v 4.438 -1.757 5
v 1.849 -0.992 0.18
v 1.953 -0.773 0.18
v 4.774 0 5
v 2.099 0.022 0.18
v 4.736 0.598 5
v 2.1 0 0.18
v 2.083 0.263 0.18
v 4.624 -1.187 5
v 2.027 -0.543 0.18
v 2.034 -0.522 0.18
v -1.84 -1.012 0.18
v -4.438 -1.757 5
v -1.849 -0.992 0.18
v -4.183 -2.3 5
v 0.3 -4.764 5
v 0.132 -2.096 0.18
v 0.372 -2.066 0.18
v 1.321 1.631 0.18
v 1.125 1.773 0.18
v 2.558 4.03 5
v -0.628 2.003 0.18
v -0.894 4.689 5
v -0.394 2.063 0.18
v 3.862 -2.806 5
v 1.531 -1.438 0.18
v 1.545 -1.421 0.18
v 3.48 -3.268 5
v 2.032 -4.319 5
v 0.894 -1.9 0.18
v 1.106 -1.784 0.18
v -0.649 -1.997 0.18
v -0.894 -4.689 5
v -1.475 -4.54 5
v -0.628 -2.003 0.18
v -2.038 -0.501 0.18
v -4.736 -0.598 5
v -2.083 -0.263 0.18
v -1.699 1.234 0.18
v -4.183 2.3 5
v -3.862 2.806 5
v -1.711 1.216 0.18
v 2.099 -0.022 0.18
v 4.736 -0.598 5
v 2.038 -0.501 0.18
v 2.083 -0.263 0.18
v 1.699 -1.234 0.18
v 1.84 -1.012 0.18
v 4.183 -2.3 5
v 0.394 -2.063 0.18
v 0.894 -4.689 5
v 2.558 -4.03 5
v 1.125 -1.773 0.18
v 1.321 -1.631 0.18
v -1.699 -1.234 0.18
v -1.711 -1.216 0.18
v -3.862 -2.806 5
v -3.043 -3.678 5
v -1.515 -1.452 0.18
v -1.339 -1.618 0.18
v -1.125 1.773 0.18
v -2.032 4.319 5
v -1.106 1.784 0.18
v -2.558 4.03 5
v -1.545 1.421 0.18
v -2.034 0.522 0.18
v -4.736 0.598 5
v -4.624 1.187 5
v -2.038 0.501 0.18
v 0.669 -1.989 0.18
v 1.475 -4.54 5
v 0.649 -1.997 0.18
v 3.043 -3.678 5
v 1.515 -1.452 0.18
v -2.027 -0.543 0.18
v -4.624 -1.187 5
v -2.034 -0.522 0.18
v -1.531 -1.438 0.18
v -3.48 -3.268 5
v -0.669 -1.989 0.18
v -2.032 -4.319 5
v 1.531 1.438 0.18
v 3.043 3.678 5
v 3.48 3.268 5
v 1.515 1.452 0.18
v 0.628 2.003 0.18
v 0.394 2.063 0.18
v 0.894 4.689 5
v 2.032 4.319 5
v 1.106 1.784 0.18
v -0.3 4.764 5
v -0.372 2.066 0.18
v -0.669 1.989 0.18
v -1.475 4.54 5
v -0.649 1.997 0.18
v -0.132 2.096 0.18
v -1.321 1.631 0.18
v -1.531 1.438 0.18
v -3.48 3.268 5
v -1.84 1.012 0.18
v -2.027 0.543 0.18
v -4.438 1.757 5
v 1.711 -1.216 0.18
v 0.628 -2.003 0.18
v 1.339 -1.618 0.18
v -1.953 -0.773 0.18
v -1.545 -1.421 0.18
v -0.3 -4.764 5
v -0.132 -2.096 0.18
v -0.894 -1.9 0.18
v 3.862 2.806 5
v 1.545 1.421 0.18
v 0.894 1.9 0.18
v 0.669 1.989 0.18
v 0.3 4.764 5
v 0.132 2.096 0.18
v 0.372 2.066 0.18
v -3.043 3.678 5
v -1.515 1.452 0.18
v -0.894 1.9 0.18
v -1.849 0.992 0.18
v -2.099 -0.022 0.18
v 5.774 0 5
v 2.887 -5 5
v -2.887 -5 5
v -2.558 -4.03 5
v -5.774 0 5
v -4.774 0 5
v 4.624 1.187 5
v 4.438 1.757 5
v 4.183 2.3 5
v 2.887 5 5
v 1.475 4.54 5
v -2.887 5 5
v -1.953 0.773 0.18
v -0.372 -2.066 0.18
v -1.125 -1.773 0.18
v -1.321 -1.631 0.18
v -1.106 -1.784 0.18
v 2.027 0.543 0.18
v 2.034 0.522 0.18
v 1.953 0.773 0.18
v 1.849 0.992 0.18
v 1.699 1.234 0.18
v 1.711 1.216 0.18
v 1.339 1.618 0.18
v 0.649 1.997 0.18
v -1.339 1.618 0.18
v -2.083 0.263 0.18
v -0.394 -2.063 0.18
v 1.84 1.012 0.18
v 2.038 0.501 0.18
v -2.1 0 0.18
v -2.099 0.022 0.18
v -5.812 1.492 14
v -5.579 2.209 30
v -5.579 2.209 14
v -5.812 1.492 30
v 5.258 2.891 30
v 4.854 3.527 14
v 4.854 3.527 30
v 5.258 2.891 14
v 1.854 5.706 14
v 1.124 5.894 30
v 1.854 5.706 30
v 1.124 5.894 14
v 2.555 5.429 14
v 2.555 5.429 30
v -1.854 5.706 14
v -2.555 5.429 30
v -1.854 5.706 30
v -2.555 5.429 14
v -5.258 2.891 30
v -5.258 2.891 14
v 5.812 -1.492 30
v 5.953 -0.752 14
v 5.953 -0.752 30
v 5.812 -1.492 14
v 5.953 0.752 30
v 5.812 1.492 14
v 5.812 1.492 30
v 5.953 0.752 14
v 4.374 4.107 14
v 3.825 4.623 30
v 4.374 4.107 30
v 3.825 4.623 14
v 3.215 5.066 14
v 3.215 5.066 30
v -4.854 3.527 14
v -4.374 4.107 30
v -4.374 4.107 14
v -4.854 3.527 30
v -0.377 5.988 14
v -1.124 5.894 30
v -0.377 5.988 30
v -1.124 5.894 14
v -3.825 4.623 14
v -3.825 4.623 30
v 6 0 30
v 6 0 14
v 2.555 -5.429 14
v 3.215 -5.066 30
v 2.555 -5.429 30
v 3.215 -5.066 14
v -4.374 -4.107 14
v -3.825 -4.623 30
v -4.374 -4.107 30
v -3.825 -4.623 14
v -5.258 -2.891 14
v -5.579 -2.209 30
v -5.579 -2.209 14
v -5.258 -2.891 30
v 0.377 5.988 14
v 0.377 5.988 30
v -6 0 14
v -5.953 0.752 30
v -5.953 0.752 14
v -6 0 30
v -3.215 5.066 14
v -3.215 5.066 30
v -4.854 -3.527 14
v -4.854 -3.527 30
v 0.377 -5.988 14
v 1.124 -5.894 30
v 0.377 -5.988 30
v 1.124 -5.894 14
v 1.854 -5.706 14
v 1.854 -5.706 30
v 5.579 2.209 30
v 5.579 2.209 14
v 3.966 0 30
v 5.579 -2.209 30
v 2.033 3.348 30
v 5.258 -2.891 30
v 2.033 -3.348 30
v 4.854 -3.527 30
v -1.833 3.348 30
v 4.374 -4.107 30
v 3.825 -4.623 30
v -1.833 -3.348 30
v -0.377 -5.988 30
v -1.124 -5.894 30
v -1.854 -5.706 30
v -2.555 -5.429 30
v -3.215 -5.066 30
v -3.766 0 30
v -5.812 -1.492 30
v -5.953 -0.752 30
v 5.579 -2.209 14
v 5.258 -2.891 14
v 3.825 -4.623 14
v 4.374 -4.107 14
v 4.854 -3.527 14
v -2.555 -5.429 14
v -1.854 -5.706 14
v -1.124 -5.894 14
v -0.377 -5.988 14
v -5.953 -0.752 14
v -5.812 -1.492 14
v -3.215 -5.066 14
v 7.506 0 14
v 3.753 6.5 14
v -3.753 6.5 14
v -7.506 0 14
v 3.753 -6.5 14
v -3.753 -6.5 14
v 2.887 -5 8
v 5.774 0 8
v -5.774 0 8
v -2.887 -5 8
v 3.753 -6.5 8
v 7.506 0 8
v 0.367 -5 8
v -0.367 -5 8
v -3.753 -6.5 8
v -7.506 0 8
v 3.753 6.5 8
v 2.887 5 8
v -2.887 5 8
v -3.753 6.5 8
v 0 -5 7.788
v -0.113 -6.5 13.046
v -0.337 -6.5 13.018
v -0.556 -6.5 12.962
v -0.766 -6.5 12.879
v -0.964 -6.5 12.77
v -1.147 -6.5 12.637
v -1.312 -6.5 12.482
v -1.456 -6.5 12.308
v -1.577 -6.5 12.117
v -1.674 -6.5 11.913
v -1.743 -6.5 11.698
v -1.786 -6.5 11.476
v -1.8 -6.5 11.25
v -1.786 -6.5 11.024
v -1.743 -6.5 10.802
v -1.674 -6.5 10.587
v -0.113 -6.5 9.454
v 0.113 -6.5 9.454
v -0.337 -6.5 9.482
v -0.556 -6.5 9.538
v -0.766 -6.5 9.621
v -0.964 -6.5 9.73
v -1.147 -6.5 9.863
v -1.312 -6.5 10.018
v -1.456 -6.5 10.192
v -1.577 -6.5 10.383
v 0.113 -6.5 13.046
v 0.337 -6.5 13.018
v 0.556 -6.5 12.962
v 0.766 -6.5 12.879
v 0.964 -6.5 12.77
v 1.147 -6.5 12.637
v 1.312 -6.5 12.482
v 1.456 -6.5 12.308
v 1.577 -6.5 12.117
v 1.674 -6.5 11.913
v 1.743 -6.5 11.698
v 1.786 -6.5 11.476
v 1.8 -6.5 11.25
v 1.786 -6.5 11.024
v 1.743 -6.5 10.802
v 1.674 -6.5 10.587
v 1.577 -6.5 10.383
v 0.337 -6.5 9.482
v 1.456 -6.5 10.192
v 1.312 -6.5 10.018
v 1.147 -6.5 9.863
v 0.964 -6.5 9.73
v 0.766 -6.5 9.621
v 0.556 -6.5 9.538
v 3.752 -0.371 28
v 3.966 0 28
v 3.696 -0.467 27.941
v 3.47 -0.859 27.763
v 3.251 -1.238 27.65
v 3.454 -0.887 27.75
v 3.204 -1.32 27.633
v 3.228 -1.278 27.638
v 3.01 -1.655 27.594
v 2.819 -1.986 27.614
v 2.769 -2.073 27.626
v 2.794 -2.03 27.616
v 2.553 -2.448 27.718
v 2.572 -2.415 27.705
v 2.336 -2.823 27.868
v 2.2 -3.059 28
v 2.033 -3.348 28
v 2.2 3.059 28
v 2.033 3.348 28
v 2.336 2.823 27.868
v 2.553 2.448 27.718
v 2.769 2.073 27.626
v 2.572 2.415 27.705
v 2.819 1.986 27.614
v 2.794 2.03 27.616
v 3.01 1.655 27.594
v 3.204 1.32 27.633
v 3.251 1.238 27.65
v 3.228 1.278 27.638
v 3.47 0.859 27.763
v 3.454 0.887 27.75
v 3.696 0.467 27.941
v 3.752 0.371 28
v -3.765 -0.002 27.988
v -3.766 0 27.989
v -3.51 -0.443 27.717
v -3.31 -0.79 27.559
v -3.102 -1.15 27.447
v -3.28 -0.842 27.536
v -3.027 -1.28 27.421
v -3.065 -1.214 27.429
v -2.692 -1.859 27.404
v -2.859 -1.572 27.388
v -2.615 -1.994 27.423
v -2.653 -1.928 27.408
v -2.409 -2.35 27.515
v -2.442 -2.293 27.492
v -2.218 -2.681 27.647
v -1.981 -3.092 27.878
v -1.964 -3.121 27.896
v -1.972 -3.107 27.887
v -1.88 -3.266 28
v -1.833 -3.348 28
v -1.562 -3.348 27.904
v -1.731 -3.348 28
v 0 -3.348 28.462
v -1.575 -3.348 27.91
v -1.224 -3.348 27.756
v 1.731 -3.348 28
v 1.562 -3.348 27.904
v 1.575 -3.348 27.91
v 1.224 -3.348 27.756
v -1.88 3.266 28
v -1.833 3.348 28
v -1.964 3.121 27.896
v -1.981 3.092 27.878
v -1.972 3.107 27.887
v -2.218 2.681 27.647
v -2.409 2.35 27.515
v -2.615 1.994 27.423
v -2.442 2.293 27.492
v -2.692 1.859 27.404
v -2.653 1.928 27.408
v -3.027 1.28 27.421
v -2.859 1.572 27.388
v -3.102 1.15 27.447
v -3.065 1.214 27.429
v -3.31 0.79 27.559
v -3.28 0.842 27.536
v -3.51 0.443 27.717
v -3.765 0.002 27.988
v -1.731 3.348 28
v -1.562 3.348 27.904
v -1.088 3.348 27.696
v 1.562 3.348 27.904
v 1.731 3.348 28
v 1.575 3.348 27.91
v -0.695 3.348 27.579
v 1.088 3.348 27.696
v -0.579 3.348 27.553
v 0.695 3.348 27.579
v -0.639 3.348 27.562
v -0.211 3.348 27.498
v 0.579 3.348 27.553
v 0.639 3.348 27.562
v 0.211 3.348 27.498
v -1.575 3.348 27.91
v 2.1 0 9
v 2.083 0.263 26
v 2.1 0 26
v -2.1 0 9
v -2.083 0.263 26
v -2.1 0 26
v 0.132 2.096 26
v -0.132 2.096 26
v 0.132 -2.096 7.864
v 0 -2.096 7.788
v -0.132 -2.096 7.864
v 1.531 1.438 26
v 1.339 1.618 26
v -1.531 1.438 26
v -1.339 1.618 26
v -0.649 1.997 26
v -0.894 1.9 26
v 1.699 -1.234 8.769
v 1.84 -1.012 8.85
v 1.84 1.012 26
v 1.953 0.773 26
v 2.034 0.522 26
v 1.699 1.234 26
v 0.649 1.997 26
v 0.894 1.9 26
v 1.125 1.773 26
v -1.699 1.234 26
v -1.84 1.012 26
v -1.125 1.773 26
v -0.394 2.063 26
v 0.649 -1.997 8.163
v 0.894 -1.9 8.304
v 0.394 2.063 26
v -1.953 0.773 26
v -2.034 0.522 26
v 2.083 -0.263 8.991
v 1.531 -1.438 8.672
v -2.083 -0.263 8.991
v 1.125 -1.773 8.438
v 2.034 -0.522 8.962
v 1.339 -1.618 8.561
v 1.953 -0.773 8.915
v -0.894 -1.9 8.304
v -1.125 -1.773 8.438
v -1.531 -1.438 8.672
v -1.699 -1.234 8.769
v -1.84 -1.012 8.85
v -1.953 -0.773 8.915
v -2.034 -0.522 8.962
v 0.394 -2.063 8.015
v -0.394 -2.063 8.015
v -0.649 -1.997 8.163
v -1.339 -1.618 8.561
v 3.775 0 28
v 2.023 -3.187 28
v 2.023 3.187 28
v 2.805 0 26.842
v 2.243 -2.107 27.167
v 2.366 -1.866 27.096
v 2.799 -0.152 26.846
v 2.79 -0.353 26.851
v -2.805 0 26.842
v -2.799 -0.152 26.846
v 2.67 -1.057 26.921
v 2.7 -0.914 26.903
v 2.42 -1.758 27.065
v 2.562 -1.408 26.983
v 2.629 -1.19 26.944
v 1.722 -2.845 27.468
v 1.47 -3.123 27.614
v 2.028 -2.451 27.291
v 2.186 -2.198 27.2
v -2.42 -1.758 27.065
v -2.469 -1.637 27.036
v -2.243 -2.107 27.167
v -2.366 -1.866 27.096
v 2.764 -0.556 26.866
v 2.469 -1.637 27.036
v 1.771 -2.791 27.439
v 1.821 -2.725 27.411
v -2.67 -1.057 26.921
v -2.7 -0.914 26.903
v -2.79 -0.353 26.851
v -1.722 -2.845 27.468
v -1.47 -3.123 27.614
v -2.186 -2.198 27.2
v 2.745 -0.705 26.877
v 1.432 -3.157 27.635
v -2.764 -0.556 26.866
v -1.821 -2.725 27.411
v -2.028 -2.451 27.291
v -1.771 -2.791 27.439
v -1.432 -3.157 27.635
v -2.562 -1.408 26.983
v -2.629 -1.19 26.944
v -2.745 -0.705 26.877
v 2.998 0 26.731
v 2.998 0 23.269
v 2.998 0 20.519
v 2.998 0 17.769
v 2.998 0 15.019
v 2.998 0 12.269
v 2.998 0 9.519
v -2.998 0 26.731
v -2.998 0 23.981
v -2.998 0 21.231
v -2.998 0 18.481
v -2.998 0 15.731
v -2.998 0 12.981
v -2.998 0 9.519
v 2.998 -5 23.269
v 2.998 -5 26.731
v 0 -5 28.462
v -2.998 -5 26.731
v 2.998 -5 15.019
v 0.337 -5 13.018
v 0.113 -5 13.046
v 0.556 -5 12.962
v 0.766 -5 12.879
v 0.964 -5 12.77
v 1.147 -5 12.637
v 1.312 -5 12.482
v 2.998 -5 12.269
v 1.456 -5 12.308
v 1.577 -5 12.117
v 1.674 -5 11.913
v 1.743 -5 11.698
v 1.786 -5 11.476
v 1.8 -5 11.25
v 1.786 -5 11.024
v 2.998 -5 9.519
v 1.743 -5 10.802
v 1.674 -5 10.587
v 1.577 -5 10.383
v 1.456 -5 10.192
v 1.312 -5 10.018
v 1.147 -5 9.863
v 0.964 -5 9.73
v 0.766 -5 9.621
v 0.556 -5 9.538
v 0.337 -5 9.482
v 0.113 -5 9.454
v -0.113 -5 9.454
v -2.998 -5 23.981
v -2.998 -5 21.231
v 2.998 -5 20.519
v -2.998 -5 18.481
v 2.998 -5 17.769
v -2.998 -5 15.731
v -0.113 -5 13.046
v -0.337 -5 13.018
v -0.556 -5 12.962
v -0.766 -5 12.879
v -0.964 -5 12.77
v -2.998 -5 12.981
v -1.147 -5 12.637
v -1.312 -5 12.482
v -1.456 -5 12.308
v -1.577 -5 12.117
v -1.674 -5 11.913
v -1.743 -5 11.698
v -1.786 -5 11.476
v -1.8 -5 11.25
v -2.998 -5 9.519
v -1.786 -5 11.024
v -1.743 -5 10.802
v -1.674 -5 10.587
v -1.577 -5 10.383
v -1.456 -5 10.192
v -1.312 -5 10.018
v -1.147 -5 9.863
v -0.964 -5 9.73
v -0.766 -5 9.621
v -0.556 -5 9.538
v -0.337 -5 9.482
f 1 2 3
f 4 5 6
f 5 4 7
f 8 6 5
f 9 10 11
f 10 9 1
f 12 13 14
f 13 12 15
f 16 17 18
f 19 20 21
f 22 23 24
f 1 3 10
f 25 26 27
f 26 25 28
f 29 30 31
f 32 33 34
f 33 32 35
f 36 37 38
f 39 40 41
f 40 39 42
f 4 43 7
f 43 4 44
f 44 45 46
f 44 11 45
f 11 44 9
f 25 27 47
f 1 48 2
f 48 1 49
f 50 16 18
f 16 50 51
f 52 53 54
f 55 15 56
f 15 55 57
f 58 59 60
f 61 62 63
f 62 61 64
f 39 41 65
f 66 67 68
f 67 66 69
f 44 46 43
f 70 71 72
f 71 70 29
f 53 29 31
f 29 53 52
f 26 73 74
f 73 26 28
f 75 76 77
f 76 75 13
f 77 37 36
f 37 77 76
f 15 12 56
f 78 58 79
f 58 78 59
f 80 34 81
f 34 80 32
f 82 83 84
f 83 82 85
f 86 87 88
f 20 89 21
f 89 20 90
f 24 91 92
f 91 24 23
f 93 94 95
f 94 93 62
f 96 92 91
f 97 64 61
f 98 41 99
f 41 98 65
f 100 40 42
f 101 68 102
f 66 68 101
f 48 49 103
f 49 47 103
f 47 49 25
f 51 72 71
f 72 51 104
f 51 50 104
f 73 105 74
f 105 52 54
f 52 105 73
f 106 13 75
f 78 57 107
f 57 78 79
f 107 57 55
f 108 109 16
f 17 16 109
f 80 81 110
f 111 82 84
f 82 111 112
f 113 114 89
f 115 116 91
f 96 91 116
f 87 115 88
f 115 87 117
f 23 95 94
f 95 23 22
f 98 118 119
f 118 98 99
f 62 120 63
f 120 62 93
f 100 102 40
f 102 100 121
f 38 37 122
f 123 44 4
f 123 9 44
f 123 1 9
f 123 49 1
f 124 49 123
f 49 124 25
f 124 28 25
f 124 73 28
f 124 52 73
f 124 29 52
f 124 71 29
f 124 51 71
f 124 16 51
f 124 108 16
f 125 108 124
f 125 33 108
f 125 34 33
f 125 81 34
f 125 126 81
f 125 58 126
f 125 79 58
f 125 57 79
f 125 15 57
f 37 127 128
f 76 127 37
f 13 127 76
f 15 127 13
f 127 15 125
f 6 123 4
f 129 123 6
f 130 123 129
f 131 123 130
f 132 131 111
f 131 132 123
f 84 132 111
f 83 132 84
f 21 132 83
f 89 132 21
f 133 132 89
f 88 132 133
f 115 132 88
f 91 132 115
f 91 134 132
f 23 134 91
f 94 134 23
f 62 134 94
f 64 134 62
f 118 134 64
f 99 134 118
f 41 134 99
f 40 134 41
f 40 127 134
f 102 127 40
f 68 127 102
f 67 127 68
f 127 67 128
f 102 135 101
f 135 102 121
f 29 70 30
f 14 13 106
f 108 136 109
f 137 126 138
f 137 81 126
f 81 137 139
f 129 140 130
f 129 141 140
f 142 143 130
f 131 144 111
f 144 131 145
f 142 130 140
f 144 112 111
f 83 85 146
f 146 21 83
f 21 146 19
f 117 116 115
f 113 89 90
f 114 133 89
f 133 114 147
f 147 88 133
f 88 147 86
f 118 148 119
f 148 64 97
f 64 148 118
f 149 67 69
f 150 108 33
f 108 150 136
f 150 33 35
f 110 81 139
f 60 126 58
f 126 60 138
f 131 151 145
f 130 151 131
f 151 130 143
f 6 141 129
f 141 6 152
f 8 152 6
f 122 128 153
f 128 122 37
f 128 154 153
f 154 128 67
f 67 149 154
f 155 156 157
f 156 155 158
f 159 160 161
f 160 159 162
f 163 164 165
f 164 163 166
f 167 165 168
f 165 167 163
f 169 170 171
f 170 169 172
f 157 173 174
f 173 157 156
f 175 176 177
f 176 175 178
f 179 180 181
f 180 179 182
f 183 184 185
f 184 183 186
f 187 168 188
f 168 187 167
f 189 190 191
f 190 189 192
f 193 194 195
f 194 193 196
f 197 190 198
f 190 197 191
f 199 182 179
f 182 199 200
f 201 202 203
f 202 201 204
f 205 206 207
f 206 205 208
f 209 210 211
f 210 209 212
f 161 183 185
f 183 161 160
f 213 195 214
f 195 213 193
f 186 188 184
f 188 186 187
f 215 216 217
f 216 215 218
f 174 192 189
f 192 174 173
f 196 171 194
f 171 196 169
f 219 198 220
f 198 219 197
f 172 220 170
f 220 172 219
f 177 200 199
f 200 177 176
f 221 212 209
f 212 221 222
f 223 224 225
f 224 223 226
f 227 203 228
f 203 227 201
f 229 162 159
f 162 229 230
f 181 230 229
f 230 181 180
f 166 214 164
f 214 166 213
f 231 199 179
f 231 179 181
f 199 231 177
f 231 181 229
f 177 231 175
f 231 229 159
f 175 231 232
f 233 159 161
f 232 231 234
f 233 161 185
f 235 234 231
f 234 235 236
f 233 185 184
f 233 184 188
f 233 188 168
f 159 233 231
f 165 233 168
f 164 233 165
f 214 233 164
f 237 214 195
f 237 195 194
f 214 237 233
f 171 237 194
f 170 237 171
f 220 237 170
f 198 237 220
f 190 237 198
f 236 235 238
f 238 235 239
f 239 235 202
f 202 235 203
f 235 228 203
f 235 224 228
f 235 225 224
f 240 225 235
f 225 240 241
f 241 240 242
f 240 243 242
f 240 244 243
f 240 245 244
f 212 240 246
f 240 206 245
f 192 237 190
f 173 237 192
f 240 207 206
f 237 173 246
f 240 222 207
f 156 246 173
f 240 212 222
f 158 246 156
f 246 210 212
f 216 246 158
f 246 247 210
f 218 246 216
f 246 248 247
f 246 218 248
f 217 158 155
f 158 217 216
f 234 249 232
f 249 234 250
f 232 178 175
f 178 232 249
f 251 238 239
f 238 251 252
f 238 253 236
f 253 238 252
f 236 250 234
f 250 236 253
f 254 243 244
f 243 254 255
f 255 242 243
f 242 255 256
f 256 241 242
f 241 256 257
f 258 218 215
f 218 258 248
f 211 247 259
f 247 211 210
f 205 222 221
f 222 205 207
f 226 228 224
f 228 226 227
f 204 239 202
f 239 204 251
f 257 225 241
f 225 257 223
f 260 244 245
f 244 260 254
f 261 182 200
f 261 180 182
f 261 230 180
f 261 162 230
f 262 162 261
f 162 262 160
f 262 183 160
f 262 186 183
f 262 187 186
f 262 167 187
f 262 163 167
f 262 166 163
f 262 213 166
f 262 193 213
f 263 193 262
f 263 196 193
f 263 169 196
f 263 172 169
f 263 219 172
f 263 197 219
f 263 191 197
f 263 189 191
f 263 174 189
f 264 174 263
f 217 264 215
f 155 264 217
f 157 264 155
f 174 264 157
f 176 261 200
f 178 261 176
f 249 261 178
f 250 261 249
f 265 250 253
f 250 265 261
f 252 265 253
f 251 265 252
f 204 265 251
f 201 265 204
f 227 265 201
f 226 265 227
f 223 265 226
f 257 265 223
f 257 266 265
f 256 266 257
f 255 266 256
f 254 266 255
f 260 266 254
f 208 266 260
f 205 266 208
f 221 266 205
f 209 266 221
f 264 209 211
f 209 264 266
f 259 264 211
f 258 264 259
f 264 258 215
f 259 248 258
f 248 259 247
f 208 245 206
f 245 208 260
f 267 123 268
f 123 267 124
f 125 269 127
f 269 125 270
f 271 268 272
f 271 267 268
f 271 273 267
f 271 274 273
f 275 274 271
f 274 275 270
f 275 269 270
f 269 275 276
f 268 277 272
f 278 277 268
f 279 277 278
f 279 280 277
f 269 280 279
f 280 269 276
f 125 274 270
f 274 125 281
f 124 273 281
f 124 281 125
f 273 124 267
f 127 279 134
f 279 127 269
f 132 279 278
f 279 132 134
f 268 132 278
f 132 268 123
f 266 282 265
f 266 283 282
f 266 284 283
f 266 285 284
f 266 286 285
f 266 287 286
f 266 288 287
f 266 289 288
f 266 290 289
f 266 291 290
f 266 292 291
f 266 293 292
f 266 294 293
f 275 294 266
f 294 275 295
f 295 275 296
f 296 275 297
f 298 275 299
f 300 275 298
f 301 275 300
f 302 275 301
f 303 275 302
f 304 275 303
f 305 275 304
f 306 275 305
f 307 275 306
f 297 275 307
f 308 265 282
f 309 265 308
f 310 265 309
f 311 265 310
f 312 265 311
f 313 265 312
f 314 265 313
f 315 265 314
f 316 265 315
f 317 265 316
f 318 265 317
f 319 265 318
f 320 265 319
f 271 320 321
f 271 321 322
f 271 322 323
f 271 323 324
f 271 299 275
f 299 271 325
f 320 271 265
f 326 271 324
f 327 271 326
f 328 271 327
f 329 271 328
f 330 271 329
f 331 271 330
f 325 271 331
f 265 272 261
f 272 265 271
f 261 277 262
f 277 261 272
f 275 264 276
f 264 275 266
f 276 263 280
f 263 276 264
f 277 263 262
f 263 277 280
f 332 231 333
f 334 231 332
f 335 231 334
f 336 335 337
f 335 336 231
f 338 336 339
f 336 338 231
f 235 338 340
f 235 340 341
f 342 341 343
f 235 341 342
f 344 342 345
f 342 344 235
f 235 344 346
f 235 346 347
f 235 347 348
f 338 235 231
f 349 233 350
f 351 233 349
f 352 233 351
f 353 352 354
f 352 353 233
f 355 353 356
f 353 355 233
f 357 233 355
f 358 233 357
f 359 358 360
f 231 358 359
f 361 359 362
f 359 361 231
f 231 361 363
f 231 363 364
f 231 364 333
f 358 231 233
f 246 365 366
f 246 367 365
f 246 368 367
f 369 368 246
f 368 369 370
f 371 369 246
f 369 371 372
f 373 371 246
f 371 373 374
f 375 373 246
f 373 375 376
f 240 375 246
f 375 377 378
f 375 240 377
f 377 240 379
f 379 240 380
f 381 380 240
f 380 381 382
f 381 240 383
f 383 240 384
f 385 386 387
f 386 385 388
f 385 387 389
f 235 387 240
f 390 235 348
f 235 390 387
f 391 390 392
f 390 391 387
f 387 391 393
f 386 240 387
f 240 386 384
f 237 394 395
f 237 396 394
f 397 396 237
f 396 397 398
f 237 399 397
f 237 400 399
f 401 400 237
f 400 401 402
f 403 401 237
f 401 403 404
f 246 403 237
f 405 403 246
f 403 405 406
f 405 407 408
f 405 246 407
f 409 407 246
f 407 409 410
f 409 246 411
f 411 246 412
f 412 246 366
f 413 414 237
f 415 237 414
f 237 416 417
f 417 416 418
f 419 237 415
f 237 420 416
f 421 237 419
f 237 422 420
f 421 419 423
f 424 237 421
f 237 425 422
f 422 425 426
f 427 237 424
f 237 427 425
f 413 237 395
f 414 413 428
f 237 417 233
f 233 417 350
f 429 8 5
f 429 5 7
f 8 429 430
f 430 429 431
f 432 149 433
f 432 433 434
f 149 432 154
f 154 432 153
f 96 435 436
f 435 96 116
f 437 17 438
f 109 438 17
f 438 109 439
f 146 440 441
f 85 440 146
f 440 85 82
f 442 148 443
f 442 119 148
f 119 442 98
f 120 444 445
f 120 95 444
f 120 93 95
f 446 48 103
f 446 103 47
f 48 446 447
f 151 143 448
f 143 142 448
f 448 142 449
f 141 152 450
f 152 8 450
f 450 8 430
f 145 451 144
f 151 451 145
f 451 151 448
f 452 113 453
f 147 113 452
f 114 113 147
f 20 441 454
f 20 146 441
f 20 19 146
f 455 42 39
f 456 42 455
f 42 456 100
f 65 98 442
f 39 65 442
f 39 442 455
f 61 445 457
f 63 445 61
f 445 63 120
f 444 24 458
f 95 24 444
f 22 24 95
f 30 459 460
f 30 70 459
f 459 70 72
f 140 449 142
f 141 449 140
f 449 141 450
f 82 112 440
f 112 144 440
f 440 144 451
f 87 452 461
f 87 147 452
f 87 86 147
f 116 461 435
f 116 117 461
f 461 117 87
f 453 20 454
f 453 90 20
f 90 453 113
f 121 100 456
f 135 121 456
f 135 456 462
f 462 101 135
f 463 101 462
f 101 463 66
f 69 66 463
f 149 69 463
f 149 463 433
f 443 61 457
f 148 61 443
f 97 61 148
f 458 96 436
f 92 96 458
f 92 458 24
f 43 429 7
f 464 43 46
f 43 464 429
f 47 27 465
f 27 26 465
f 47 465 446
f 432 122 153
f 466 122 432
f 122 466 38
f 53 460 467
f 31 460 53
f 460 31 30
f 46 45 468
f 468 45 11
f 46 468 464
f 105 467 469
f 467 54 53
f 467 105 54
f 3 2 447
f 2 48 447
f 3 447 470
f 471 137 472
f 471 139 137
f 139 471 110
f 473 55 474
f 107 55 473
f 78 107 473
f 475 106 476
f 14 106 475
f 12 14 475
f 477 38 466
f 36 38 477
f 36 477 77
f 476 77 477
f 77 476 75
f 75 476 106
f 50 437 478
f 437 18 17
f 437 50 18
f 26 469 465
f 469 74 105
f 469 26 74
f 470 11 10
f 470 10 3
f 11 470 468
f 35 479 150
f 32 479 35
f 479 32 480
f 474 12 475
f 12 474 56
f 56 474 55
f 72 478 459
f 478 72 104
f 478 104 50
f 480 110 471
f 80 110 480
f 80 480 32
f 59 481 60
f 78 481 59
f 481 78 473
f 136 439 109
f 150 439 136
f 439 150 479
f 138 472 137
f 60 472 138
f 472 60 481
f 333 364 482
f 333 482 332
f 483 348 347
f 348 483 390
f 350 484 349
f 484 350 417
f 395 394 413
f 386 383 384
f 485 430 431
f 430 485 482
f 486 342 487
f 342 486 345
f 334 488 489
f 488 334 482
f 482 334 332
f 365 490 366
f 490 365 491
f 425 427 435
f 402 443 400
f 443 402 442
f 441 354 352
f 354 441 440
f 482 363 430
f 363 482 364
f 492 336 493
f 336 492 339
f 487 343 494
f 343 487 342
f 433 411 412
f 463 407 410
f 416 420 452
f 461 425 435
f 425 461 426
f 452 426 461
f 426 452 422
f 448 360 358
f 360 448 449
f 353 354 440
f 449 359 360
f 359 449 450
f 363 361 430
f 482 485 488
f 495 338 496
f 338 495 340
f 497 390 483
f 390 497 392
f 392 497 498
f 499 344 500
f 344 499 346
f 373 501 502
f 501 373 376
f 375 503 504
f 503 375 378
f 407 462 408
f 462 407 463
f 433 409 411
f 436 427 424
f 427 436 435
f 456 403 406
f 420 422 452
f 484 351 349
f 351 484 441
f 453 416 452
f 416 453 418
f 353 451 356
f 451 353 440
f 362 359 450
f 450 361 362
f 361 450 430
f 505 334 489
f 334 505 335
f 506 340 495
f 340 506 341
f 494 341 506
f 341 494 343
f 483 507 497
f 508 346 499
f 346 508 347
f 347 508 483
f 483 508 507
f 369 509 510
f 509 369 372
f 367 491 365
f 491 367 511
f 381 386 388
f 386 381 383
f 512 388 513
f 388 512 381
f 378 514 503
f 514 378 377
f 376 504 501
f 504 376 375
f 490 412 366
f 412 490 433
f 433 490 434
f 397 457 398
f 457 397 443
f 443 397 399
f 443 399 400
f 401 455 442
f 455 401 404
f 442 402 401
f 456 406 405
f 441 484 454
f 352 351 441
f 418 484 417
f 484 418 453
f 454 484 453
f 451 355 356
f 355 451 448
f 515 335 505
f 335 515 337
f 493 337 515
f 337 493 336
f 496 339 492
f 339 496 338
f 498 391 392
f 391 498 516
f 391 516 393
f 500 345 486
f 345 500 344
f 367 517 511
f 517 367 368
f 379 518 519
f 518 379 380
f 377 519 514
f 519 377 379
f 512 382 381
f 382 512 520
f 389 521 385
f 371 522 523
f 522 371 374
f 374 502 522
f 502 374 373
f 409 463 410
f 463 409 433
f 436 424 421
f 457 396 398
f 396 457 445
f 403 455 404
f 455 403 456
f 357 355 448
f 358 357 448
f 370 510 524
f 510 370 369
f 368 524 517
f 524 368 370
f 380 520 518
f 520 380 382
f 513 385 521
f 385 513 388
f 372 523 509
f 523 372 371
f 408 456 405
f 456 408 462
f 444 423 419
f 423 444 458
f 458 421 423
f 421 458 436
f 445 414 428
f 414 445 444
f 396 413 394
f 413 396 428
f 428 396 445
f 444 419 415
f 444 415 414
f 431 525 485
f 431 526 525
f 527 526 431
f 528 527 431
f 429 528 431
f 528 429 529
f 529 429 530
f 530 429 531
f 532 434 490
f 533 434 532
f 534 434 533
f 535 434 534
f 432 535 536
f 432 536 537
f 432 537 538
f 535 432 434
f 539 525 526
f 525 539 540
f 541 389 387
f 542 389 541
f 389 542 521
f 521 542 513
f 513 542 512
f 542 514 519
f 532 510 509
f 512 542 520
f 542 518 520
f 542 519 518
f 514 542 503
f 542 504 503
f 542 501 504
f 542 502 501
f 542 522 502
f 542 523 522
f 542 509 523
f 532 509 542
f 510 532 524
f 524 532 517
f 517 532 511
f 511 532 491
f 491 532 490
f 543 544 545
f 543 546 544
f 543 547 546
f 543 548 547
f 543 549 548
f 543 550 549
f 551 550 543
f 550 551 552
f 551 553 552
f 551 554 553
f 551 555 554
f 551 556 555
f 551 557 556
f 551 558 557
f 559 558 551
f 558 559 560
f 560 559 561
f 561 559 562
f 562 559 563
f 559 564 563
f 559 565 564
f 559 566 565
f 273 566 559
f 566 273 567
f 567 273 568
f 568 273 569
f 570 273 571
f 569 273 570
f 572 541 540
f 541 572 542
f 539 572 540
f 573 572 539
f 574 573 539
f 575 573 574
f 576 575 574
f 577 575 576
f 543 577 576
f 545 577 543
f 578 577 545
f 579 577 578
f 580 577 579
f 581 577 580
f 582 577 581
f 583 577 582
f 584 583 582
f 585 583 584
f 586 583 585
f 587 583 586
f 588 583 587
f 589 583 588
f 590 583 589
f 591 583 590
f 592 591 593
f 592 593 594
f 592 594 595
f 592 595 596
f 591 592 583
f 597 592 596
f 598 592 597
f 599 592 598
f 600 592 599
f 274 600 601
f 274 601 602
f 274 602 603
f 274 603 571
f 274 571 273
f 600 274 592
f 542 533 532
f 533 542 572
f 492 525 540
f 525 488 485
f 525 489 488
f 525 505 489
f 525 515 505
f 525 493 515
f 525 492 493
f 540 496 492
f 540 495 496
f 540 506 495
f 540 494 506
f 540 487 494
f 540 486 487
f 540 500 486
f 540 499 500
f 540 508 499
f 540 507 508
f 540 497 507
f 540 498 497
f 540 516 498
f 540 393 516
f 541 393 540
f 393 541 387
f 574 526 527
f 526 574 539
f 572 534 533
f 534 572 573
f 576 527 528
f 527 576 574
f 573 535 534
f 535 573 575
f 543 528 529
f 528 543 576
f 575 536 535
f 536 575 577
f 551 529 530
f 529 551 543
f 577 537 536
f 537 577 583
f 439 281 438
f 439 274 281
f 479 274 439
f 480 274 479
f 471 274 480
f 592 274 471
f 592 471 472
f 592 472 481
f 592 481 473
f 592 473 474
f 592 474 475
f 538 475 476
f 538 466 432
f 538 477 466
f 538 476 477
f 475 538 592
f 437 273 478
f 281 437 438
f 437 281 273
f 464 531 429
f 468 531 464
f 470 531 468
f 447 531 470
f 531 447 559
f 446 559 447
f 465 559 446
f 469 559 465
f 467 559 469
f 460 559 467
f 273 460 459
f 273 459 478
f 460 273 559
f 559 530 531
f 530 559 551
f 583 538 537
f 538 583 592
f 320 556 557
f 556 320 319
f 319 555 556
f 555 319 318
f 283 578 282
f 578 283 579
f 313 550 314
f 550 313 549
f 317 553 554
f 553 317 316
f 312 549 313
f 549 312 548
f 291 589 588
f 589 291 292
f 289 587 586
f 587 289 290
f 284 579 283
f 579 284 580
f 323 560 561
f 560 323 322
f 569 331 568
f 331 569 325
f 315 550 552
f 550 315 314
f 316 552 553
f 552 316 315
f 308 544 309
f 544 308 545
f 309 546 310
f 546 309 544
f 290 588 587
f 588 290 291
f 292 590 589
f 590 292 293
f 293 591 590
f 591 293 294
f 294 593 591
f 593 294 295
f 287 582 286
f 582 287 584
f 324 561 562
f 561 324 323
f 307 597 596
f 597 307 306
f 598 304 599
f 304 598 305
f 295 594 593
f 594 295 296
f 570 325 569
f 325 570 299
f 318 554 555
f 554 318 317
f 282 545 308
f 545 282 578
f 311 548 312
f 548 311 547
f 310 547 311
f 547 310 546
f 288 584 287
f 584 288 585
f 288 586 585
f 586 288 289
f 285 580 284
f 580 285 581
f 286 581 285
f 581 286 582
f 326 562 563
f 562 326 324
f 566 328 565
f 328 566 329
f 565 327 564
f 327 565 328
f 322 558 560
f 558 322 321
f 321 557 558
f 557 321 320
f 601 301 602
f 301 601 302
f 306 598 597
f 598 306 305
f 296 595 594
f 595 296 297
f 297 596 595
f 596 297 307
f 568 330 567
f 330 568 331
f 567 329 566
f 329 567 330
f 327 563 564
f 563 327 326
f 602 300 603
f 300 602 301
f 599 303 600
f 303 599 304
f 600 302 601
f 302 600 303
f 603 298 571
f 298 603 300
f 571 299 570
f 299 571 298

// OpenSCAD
$fn = 50;


difference() {
	union() {
		cylinder(h = 5, r1 = 2.0000000000, r2 = 4.7735000000);
		translate(v = [0, 0, 14.0000000000]) {
			cylinder(h = 16, r = 6.0000000000);
		}
		translate(v = [0, 0, 5]) {
			linear_extrude(height = 3) {
				polygon(points = [[5.7735000000, 0.0000000000], [2.8867500000, 4.9999976687], [-2.8867500000, 4.9999976687], [-5.7735000000, 0.0000000000], [-2.8867500000, -4.9999976687], [2.8867500000, -4.9999976687]]);
			}
		}
		translate(v = [0, 0, 8]) {
			linear_extrude(height = 6) {
				polygon(points = [[7.5055500000, 0.0000000000], [3.7527750000, 6.4999969694], [-3.7527750000, 6.4999969694], [-7.5055500000, 0.0000000000], [-3.7527750000, -6.4999969694], [3.7527750000, -6.4999969694]]);
			}
		}
	}
	union() {
		translate(v = [0, 0, 13]) {
			rotate(a = [0, 0, 0]) {
				difference() {
					union() {
						translate(v = [0.1000000000, 0, 13]) {
							#linear_extrude(height = 228.2000000000) {
								polygon(points = [[3.8658550000, 0.0000000000], [1.9329275000, 3.3479286373], [-1.9329275000, 3.3479286373], [-3.8658550000, 0.0000000000], [-1.9329275000, -3.3479286373], [1.9329275000, -3.3479286373]]);
							}
						}
						#translate(v = [0, 0, -58.8000000000]) {
							cylinder(h = 100, r = 2.1000000000);
						}
					}
					union() {
						translate(v = [0, 0, 13]) {
							difference() {
								#cylinder(h = 2, r1 = 10.1000000000, r2 = 11.7750000000);
								#cylinder(h = 2, r1 = 2.1000000000, r2 = 3.7750000000);
							}
						}
					}
				}
			}
		}
		translate(v = [0, 0, 25.0000000000]) {
			rotate(a = [90, 30.0000000000, 0]) {
				difference() {
					union() {
						#linear_extrude(height = 5.0000000000) {
							polygon(points = [[3.4620000000, 0.0000000000], [1.7310000000, 2.9981799479], [-1.7310000000, 2.9981799479], [-3.4620000000, 0.0000000000], [-1.7310000000, -2.9981799479], [1.7310000000, -2.9981799479]]);
						}
					}
					union();
				}
			}
		}
		translate(v = [0, 0, 22.2500000000]) {
			rotate(a = [90, 30.0000000000, 0]) {
				difference() {
					union() {
						#linear_extrude(height = 5.0000000000) {
							polygon(points = [[3.4620000000, 0.0000000000], [1.7310000000, 2.9981799479], [-1.7310000000, 2.9981799479], [-3.4620000000, 0.0000000000], [-1.7310000000, -2.9981799479], [1.7310000000, -2.9981799479]]);
						}
					}
					union();
				}
			}
		}
		translate(v = [0, 0, 19.5000000000]) {
			rotate(a = [90, 30.0000000000, 0]) {
				difference() {
					union() {
						#linear_extrude(height = 5.0000000000) {
							polygon(points = [[3.4620000000, 0.0000000000], [1.7310000000, 2.9981799479], [-1.7310000000, 2.9981799479], [-3.4620000000, 0.0000000000], [-1.7310000000, -2.9981799479], [1.7310000000, -2.9981799479]]);
						}
					}
					union();
				}
			}
		}
		translate(v = [0, 0, 16.7500000000]) {
			rotate(a = [90, 30.0000000000, 0]) {
				difference() {
					union() {
						#linear_extrude(height = 5.0000000000) {
							polygon(points = [[3.4620000000, 0.0000000000], [1.7310000000, 2.9981799479], [-1.7310000000, 2.9981799479], [-3.4620000000, 0.0000000000], [-1.7310000000, -2.9981799479], [1.7310000000, -2.9981799479]]);
						}
					}
					union();
				}
			}
		}
		translate(v = [0, 0, 14.0000000000]) {
			rotate(a = [90, 30.0000000000, 0]) {
				difference() {
					union() {
						#linear_extrude(height = 5.0000000000) {
							polygon(points = [[3.4620000000, 0.0000000000], [1.7310000000, 2.9981799479], [-1.7310000000, 2.9981799479], [-3.4620000000, 0.0000000000], [-1.7310000000, -2.9981799479], [1.7310000000, -2.9981799479]]);
						}
					}
					union();
				}
			}
		}
		translate(v = [0, 0, 11.2500000000]) {
			rotate(a = [90, 30.0000000000, 0]) {
				difference() {
					union() {
						#linear_extrude(height = 5.0000000000) {
							polygon(points = [[3.4620000000, 0.0000000000], [1.7310000000, 2.9981799479], [-1.7310000000, 2.9981799479], [-3.4620000000, 0.0000000000], [-1.7310000000, -2.9981799479], [1.7310000000, -2.9981799479]]);
						}
					}
					union();
				}
			}
		}
		#translate(v = [0, 0, 11.2500000000]) {
			rotate(a = [90, 0, 0]) {
				cylinder(h = 12, r = 1.8000000000);
			}
		}
	}
}
